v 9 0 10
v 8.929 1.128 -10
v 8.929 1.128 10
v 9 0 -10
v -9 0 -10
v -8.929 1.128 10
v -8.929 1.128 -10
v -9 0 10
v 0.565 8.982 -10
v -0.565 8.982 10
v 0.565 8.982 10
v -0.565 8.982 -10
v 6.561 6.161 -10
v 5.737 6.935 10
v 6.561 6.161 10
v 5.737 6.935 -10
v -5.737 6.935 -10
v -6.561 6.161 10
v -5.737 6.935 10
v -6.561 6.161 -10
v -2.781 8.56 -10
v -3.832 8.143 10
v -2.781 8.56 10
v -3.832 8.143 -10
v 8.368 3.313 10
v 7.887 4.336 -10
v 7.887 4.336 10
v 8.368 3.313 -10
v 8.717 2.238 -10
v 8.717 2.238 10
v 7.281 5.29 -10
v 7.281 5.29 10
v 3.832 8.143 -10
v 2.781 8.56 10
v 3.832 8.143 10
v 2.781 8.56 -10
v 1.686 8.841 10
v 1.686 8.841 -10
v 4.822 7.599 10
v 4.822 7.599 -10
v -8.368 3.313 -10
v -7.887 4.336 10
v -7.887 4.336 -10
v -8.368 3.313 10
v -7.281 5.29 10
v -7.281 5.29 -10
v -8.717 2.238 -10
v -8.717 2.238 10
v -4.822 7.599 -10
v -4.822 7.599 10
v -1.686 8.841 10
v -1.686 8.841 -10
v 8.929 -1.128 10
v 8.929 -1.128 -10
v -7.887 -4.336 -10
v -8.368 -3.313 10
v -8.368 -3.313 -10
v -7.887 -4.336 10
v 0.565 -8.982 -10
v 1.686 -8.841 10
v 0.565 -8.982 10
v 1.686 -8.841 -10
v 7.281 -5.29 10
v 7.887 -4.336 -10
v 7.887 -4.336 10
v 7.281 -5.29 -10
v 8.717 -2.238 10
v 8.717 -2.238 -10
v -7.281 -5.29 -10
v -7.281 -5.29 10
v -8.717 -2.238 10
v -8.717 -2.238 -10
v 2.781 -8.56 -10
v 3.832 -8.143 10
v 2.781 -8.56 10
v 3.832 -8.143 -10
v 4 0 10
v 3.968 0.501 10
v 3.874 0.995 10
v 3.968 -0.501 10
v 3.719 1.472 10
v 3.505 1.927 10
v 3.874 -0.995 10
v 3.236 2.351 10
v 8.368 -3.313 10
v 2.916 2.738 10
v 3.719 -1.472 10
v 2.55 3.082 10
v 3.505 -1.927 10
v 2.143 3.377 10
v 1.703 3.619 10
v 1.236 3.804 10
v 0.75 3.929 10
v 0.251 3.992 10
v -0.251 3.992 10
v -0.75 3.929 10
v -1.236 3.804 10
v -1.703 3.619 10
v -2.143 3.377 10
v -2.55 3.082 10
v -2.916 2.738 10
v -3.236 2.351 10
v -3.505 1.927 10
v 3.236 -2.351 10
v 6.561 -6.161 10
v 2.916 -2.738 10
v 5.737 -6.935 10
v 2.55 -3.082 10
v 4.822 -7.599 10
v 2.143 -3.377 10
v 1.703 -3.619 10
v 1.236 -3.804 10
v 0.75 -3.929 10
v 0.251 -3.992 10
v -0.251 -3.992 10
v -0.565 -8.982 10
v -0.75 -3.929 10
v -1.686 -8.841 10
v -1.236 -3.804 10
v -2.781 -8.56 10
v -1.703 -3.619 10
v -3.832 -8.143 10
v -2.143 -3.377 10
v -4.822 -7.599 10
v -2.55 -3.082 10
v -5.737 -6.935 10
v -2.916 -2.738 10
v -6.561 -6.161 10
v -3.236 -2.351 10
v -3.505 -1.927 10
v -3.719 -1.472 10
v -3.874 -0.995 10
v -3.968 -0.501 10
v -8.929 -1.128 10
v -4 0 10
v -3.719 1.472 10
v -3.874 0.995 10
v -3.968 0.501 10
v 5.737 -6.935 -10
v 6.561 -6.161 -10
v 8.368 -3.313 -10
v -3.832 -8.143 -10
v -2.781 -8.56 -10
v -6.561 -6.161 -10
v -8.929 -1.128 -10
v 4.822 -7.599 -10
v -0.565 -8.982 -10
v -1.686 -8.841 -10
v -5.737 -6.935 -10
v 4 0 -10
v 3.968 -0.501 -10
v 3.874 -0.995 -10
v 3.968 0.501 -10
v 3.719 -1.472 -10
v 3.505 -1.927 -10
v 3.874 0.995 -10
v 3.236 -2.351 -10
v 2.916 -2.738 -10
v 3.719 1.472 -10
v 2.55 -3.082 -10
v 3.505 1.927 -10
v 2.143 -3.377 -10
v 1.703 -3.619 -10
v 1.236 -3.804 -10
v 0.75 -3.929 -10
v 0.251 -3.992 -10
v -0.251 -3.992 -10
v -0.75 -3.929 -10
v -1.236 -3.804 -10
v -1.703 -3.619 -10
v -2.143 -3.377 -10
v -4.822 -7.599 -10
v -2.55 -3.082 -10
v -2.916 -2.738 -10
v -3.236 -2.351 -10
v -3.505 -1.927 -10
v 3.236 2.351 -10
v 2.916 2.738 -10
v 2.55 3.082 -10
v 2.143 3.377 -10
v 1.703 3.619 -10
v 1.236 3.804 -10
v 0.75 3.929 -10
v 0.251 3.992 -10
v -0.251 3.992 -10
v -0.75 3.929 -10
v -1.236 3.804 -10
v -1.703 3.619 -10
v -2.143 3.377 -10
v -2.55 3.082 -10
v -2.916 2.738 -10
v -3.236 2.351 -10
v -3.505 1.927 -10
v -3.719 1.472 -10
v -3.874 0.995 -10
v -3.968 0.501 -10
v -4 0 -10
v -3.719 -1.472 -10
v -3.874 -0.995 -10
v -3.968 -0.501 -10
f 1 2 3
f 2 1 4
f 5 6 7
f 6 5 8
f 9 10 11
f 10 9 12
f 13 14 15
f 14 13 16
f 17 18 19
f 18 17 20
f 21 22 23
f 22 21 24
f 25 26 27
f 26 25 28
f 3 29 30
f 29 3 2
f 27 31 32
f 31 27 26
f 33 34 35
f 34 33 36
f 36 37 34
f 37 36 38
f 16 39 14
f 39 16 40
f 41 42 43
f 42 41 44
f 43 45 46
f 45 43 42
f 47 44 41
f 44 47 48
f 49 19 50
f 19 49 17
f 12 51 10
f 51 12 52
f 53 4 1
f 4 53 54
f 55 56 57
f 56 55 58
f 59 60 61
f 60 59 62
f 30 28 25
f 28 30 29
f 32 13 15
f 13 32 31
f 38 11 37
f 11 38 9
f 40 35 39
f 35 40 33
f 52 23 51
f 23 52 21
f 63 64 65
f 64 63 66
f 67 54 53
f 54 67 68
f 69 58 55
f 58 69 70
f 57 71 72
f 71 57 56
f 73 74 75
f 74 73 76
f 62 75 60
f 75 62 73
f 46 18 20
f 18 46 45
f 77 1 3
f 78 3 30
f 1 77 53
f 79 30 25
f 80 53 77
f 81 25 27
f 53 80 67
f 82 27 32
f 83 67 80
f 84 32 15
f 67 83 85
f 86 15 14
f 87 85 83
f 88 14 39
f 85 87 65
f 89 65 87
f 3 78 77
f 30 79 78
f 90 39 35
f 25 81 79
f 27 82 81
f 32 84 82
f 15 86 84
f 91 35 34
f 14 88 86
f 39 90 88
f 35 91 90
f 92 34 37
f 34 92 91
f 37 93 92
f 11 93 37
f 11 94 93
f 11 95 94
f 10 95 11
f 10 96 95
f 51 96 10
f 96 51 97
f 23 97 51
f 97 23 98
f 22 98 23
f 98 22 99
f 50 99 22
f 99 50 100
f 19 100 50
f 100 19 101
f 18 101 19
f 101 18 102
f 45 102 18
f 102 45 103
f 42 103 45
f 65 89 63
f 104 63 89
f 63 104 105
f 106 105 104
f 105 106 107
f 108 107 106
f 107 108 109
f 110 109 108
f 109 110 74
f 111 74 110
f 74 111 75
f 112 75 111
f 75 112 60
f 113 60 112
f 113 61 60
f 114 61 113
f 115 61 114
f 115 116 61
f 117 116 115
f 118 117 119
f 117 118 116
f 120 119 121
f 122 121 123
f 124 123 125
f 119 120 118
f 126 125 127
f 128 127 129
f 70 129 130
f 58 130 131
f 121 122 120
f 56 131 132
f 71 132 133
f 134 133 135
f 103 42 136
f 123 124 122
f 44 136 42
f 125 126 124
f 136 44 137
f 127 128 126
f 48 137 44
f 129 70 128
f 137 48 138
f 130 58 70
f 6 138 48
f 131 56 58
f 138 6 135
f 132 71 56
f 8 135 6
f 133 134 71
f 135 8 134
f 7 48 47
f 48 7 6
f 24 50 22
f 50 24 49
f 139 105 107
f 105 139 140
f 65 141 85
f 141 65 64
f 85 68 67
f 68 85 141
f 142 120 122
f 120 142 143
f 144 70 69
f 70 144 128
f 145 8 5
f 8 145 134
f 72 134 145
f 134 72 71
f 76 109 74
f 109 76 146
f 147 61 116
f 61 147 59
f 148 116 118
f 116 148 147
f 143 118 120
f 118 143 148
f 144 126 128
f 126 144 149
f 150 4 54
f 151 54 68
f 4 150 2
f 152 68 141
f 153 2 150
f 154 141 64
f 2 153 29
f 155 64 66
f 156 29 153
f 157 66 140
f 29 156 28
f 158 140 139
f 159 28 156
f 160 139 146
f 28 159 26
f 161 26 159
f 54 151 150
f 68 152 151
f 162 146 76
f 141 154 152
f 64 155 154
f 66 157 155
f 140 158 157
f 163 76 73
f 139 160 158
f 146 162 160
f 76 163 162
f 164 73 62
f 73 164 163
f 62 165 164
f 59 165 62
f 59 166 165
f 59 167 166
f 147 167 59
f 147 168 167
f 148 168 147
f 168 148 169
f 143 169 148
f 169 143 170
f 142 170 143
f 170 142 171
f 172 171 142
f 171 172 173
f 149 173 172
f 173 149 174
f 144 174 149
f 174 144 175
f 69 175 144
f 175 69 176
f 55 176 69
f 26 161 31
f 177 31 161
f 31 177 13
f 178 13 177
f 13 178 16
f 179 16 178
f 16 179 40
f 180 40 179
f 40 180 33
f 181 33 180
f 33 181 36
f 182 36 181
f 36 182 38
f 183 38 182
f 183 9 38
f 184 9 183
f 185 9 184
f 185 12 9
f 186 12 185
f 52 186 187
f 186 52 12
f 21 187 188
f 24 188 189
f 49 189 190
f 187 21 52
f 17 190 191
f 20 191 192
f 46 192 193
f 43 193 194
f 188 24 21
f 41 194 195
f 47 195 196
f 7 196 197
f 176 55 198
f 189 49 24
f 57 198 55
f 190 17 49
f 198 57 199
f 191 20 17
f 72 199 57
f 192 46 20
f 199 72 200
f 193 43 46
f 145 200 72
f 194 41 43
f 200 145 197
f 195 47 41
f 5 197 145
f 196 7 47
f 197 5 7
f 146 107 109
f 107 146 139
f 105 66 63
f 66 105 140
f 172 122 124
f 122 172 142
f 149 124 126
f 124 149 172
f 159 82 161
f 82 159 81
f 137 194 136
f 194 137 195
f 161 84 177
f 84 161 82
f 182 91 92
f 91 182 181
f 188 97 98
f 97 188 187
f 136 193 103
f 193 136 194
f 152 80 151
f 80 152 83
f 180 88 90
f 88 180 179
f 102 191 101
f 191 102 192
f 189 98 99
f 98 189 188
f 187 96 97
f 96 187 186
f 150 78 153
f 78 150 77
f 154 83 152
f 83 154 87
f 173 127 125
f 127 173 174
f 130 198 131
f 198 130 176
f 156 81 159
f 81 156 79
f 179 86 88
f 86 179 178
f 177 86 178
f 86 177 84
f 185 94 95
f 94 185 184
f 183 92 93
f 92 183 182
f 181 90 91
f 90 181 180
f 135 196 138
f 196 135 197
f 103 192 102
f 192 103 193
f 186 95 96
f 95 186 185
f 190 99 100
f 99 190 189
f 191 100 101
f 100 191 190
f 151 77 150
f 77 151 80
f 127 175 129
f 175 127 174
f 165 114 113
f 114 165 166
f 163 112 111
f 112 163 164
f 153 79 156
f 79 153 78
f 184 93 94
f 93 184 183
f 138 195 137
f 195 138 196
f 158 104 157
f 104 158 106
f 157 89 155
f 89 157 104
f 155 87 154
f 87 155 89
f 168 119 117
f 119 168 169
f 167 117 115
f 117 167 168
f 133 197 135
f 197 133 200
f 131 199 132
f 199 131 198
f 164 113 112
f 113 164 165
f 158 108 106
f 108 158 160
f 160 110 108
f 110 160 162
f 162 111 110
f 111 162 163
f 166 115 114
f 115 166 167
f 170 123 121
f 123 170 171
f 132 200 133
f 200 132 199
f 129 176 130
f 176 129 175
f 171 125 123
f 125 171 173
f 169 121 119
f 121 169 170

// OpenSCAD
$fn = 50;


difference() {
	union() {
		translate(v = [0, 0, -10.0000000000]) {
			cylinder(h = 20, r = 9.0000000000);
		}
	}
	union() {
		translate(v = [0, 0, -100.0000000000]) {
			cylinder(h = 200, r = 4.0000000000);
		}
	}
}
